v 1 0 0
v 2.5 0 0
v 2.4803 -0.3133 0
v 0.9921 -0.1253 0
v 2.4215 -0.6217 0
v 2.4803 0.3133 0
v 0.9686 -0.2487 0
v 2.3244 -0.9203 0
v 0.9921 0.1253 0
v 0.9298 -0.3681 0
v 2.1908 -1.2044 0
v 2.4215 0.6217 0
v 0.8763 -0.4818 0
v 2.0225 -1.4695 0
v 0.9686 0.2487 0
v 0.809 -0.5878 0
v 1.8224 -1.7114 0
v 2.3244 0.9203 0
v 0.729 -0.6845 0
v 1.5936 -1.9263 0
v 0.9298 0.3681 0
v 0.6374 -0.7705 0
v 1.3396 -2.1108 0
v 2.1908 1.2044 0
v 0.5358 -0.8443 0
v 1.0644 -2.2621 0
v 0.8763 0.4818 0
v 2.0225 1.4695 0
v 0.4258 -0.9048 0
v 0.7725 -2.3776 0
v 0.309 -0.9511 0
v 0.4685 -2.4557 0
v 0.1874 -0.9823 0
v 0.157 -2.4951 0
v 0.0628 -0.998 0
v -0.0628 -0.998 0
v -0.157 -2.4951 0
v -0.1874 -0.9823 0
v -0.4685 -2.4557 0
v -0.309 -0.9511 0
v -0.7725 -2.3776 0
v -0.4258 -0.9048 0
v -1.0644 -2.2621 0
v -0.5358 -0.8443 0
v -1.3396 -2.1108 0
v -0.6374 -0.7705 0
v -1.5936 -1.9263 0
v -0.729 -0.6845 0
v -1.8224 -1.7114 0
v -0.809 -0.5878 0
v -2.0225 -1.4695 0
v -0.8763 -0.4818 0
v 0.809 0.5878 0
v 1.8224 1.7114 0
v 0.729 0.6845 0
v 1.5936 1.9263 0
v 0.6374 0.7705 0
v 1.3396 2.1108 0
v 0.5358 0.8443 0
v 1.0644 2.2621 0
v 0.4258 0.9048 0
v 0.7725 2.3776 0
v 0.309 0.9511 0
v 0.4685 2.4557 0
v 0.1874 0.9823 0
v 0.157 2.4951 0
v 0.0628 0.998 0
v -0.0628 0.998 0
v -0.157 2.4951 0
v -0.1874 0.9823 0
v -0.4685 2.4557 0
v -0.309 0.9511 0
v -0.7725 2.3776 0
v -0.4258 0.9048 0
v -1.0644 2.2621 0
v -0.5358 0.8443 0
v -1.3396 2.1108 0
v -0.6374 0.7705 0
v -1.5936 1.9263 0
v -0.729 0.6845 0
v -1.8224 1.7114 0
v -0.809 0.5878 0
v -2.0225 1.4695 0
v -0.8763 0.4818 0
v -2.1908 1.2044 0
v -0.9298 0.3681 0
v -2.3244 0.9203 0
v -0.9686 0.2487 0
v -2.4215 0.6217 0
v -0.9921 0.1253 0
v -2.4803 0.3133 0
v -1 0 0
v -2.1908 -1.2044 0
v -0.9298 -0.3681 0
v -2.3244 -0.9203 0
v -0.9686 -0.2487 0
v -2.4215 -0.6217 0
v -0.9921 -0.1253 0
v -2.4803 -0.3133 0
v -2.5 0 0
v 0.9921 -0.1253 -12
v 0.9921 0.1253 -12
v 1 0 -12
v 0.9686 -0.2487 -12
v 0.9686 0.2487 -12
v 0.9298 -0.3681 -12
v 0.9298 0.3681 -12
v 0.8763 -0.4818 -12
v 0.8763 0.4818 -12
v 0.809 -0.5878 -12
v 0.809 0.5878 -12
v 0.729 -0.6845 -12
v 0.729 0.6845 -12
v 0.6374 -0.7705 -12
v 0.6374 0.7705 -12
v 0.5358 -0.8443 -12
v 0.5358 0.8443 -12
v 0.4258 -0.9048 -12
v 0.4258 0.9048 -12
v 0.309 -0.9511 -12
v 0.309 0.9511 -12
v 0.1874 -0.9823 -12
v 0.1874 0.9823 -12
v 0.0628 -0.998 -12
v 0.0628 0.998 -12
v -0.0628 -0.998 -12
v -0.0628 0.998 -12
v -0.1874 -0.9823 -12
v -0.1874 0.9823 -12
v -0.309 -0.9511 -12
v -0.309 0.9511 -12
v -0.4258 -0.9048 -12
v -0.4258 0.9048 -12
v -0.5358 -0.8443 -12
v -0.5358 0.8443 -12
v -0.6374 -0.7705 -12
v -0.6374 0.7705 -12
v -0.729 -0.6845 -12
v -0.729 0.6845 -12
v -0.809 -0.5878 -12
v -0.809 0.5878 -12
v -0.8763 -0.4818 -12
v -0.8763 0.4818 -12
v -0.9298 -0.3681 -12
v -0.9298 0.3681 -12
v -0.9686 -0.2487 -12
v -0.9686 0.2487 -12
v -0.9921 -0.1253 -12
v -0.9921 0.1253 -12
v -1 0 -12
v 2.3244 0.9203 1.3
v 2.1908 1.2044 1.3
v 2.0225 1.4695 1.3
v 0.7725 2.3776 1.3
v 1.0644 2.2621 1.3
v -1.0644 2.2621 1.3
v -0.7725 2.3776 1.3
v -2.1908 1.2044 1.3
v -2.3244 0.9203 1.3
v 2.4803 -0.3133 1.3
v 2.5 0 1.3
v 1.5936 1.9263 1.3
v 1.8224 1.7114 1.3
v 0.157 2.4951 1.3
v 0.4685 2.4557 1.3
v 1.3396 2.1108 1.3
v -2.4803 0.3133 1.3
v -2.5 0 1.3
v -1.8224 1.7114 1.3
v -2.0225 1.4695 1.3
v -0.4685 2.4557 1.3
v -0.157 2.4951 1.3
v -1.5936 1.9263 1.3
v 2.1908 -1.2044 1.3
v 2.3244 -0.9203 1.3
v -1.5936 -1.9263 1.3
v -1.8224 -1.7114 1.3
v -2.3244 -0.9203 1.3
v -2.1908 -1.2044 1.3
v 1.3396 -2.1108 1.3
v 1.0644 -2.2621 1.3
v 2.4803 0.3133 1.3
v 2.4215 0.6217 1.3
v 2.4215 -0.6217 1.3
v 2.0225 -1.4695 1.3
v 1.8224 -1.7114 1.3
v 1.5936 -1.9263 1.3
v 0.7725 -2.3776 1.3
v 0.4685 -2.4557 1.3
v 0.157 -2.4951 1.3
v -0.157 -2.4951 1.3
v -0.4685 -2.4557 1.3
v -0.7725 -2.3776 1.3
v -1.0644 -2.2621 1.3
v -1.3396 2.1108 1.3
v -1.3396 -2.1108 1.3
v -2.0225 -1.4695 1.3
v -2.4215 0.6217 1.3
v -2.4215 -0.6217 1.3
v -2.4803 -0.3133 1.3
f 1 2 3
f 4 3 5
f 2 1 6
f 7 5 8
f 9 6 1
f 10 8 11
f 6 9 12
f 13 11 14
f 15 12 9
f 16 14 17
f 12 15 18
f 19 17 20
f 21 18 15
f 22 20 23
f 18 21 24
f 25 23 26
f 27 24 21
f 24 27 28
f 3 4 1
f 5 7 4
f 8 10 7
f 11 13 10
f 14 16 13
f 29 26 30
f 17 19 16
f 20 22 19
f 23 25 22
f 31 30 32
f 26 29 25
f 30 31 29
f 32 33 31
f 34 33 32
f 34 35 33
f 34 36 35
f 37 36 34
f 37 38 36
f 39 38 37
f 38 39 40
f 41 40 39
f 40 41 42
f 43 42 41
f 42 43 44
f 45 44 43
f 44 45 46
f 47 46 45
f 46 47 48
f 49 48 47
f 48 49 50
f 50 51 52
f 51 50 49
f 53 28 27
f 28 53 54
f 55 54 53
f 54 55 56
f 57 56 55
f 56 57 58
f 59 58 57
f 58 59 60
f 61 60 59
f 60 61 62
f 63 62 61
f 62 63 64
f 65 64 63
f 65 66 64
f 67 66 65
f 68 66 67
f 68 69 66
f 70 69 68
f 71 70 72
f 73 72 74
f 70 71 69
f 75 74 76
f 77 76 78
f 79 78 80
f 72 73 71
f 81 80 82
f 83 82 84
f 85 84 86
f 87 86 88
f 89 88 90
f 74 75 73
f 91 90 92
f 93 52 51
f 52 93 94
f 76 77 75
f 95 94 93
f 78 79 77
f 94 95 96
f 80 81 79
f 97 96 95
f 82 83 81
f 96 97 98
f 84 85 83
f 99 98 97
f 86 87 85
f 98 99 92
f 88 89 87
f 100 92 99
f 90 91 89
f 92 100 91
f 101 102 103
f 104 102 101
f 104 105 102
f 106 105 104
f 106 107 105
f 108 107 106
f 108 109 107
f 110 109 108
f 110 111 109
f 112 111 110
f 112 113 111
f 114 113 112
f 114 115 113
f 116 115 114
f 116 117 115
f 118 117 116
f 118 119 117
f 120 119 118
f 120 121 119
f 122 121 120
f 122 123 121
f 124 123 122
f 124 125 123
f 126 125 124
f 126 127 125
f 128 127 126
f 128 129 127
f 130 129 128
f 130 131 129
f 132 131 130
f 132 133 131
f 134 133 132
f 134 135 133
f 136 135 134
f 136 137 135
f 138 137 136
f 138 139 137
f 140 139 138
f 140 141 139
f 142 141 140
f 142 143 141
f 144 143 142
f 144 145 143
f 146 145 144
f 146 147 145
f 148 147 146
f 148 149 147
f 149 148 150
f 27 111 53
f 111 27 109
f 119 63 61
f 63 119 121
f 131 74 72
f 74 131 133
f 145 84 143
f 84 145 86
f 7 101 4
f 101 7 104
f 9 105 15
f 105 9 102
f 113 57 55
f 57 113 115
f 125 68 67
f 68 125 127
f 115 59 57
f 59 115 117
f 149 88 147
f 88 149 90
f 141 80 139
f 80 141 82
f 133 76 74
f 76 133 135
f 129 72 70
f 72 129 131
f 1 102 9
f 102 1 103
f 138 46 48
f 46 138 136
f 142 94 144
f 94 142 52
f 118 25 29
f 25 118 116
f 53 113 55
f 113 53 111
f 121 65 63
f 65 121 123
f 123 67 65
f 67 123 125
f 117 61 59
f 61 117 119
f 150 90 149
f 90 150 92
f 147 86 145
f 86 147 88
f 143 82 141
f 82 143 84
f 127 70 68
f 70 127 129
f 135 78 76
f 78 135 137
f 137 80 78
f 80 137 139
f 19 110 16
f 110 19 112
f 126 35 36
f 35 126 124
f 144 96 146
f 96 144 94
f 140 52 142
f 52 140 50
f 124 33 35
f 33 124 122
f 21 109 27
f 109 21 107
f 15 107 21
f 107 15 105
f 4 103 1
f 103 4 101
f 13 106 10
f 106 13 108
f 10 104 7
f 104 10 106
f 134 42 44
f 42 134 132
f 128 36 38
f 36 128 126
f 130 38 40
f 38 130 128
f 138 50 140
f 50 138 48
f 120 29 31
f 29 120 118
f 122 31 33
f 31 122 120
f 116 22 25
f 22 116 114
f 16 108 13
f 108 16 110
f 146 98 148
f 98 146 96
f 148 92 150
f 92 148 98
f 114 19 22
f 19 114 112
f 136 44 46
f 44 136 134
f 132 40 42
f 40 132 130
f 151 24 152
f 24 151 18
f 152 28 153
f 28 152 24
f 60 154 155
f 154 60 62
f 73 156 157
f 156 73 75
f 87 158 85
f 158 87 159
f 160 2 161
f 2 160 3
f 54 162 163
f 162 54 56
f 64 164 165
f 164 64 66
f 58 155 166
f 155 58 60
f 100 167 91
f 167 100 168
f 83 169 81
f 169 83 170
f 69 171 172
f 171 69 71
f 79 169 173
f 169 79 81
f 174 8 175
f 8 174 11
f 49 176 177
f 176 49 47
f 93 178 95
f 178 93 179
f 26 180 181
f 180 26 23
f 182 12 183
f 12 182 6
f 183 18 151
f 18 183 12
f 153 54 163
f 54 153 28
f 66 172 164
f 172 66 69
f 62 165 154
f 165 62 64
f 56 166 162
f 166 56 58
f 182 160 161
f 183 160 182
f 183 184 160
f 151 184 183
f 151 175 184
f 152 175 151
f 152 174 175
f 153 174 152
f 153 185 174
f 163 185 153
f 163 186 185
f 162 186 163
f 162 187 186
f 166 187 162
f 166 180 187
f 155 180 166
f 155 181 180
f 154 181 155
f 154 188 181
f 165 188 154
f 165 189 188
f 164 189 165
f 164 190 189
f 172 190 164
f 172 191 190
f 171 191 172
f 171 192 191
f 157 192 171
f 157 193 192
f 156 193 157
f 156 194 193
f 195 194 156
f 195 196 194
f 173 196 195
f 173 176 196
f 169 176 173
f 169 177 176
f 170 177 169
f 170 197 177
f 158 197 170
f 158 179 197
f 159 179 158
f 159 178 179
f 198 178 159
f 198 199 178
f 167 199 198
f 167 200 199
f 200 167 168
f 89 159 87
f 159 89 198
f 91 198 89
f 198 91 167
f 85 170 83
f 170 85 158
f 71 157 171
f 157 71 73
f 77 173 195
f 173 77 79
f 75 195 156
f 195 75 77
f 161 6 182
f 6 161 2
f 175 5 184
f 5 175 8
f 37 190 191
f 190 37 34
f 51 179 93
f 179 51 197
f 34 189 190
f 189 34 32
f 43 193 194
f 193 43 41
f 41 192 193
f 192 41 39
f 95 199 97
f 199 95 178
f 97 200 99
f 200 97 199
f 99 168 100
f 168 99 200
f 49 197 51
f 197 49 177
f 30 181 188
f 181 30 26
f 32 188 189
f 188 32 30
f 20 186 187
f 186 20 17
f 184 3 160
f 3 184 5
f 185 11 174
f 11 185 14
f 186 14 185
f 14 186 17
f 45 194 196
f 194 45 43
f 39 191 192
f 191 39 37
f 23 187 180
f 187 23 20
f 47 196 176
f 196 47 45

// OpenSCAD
$fn = 50;


difference() {
	union() {
		translate(v = [0, 0, 0]) {
			rotate(a = [0, 0, 0]) {
				difference() {
					union() {
						translate(v = [0, 0, -12.0000000000]) {
							cylinder(h = 12, r = 0.7500000000);
						}
						translate(v = [0, 0, -12.0000000000]) {
							cylinder(h = 12, r = 1.0000000000);
						}
						cylinder(h = 1.3000000000, r = 2.5000000000);
						translate(v = [0, 0, -12.0000000000]) {
							cylinder(h = 12, r = 0.7500000000);
						}
					}
					union();
				}
			}
		}
	}
	union();
}
